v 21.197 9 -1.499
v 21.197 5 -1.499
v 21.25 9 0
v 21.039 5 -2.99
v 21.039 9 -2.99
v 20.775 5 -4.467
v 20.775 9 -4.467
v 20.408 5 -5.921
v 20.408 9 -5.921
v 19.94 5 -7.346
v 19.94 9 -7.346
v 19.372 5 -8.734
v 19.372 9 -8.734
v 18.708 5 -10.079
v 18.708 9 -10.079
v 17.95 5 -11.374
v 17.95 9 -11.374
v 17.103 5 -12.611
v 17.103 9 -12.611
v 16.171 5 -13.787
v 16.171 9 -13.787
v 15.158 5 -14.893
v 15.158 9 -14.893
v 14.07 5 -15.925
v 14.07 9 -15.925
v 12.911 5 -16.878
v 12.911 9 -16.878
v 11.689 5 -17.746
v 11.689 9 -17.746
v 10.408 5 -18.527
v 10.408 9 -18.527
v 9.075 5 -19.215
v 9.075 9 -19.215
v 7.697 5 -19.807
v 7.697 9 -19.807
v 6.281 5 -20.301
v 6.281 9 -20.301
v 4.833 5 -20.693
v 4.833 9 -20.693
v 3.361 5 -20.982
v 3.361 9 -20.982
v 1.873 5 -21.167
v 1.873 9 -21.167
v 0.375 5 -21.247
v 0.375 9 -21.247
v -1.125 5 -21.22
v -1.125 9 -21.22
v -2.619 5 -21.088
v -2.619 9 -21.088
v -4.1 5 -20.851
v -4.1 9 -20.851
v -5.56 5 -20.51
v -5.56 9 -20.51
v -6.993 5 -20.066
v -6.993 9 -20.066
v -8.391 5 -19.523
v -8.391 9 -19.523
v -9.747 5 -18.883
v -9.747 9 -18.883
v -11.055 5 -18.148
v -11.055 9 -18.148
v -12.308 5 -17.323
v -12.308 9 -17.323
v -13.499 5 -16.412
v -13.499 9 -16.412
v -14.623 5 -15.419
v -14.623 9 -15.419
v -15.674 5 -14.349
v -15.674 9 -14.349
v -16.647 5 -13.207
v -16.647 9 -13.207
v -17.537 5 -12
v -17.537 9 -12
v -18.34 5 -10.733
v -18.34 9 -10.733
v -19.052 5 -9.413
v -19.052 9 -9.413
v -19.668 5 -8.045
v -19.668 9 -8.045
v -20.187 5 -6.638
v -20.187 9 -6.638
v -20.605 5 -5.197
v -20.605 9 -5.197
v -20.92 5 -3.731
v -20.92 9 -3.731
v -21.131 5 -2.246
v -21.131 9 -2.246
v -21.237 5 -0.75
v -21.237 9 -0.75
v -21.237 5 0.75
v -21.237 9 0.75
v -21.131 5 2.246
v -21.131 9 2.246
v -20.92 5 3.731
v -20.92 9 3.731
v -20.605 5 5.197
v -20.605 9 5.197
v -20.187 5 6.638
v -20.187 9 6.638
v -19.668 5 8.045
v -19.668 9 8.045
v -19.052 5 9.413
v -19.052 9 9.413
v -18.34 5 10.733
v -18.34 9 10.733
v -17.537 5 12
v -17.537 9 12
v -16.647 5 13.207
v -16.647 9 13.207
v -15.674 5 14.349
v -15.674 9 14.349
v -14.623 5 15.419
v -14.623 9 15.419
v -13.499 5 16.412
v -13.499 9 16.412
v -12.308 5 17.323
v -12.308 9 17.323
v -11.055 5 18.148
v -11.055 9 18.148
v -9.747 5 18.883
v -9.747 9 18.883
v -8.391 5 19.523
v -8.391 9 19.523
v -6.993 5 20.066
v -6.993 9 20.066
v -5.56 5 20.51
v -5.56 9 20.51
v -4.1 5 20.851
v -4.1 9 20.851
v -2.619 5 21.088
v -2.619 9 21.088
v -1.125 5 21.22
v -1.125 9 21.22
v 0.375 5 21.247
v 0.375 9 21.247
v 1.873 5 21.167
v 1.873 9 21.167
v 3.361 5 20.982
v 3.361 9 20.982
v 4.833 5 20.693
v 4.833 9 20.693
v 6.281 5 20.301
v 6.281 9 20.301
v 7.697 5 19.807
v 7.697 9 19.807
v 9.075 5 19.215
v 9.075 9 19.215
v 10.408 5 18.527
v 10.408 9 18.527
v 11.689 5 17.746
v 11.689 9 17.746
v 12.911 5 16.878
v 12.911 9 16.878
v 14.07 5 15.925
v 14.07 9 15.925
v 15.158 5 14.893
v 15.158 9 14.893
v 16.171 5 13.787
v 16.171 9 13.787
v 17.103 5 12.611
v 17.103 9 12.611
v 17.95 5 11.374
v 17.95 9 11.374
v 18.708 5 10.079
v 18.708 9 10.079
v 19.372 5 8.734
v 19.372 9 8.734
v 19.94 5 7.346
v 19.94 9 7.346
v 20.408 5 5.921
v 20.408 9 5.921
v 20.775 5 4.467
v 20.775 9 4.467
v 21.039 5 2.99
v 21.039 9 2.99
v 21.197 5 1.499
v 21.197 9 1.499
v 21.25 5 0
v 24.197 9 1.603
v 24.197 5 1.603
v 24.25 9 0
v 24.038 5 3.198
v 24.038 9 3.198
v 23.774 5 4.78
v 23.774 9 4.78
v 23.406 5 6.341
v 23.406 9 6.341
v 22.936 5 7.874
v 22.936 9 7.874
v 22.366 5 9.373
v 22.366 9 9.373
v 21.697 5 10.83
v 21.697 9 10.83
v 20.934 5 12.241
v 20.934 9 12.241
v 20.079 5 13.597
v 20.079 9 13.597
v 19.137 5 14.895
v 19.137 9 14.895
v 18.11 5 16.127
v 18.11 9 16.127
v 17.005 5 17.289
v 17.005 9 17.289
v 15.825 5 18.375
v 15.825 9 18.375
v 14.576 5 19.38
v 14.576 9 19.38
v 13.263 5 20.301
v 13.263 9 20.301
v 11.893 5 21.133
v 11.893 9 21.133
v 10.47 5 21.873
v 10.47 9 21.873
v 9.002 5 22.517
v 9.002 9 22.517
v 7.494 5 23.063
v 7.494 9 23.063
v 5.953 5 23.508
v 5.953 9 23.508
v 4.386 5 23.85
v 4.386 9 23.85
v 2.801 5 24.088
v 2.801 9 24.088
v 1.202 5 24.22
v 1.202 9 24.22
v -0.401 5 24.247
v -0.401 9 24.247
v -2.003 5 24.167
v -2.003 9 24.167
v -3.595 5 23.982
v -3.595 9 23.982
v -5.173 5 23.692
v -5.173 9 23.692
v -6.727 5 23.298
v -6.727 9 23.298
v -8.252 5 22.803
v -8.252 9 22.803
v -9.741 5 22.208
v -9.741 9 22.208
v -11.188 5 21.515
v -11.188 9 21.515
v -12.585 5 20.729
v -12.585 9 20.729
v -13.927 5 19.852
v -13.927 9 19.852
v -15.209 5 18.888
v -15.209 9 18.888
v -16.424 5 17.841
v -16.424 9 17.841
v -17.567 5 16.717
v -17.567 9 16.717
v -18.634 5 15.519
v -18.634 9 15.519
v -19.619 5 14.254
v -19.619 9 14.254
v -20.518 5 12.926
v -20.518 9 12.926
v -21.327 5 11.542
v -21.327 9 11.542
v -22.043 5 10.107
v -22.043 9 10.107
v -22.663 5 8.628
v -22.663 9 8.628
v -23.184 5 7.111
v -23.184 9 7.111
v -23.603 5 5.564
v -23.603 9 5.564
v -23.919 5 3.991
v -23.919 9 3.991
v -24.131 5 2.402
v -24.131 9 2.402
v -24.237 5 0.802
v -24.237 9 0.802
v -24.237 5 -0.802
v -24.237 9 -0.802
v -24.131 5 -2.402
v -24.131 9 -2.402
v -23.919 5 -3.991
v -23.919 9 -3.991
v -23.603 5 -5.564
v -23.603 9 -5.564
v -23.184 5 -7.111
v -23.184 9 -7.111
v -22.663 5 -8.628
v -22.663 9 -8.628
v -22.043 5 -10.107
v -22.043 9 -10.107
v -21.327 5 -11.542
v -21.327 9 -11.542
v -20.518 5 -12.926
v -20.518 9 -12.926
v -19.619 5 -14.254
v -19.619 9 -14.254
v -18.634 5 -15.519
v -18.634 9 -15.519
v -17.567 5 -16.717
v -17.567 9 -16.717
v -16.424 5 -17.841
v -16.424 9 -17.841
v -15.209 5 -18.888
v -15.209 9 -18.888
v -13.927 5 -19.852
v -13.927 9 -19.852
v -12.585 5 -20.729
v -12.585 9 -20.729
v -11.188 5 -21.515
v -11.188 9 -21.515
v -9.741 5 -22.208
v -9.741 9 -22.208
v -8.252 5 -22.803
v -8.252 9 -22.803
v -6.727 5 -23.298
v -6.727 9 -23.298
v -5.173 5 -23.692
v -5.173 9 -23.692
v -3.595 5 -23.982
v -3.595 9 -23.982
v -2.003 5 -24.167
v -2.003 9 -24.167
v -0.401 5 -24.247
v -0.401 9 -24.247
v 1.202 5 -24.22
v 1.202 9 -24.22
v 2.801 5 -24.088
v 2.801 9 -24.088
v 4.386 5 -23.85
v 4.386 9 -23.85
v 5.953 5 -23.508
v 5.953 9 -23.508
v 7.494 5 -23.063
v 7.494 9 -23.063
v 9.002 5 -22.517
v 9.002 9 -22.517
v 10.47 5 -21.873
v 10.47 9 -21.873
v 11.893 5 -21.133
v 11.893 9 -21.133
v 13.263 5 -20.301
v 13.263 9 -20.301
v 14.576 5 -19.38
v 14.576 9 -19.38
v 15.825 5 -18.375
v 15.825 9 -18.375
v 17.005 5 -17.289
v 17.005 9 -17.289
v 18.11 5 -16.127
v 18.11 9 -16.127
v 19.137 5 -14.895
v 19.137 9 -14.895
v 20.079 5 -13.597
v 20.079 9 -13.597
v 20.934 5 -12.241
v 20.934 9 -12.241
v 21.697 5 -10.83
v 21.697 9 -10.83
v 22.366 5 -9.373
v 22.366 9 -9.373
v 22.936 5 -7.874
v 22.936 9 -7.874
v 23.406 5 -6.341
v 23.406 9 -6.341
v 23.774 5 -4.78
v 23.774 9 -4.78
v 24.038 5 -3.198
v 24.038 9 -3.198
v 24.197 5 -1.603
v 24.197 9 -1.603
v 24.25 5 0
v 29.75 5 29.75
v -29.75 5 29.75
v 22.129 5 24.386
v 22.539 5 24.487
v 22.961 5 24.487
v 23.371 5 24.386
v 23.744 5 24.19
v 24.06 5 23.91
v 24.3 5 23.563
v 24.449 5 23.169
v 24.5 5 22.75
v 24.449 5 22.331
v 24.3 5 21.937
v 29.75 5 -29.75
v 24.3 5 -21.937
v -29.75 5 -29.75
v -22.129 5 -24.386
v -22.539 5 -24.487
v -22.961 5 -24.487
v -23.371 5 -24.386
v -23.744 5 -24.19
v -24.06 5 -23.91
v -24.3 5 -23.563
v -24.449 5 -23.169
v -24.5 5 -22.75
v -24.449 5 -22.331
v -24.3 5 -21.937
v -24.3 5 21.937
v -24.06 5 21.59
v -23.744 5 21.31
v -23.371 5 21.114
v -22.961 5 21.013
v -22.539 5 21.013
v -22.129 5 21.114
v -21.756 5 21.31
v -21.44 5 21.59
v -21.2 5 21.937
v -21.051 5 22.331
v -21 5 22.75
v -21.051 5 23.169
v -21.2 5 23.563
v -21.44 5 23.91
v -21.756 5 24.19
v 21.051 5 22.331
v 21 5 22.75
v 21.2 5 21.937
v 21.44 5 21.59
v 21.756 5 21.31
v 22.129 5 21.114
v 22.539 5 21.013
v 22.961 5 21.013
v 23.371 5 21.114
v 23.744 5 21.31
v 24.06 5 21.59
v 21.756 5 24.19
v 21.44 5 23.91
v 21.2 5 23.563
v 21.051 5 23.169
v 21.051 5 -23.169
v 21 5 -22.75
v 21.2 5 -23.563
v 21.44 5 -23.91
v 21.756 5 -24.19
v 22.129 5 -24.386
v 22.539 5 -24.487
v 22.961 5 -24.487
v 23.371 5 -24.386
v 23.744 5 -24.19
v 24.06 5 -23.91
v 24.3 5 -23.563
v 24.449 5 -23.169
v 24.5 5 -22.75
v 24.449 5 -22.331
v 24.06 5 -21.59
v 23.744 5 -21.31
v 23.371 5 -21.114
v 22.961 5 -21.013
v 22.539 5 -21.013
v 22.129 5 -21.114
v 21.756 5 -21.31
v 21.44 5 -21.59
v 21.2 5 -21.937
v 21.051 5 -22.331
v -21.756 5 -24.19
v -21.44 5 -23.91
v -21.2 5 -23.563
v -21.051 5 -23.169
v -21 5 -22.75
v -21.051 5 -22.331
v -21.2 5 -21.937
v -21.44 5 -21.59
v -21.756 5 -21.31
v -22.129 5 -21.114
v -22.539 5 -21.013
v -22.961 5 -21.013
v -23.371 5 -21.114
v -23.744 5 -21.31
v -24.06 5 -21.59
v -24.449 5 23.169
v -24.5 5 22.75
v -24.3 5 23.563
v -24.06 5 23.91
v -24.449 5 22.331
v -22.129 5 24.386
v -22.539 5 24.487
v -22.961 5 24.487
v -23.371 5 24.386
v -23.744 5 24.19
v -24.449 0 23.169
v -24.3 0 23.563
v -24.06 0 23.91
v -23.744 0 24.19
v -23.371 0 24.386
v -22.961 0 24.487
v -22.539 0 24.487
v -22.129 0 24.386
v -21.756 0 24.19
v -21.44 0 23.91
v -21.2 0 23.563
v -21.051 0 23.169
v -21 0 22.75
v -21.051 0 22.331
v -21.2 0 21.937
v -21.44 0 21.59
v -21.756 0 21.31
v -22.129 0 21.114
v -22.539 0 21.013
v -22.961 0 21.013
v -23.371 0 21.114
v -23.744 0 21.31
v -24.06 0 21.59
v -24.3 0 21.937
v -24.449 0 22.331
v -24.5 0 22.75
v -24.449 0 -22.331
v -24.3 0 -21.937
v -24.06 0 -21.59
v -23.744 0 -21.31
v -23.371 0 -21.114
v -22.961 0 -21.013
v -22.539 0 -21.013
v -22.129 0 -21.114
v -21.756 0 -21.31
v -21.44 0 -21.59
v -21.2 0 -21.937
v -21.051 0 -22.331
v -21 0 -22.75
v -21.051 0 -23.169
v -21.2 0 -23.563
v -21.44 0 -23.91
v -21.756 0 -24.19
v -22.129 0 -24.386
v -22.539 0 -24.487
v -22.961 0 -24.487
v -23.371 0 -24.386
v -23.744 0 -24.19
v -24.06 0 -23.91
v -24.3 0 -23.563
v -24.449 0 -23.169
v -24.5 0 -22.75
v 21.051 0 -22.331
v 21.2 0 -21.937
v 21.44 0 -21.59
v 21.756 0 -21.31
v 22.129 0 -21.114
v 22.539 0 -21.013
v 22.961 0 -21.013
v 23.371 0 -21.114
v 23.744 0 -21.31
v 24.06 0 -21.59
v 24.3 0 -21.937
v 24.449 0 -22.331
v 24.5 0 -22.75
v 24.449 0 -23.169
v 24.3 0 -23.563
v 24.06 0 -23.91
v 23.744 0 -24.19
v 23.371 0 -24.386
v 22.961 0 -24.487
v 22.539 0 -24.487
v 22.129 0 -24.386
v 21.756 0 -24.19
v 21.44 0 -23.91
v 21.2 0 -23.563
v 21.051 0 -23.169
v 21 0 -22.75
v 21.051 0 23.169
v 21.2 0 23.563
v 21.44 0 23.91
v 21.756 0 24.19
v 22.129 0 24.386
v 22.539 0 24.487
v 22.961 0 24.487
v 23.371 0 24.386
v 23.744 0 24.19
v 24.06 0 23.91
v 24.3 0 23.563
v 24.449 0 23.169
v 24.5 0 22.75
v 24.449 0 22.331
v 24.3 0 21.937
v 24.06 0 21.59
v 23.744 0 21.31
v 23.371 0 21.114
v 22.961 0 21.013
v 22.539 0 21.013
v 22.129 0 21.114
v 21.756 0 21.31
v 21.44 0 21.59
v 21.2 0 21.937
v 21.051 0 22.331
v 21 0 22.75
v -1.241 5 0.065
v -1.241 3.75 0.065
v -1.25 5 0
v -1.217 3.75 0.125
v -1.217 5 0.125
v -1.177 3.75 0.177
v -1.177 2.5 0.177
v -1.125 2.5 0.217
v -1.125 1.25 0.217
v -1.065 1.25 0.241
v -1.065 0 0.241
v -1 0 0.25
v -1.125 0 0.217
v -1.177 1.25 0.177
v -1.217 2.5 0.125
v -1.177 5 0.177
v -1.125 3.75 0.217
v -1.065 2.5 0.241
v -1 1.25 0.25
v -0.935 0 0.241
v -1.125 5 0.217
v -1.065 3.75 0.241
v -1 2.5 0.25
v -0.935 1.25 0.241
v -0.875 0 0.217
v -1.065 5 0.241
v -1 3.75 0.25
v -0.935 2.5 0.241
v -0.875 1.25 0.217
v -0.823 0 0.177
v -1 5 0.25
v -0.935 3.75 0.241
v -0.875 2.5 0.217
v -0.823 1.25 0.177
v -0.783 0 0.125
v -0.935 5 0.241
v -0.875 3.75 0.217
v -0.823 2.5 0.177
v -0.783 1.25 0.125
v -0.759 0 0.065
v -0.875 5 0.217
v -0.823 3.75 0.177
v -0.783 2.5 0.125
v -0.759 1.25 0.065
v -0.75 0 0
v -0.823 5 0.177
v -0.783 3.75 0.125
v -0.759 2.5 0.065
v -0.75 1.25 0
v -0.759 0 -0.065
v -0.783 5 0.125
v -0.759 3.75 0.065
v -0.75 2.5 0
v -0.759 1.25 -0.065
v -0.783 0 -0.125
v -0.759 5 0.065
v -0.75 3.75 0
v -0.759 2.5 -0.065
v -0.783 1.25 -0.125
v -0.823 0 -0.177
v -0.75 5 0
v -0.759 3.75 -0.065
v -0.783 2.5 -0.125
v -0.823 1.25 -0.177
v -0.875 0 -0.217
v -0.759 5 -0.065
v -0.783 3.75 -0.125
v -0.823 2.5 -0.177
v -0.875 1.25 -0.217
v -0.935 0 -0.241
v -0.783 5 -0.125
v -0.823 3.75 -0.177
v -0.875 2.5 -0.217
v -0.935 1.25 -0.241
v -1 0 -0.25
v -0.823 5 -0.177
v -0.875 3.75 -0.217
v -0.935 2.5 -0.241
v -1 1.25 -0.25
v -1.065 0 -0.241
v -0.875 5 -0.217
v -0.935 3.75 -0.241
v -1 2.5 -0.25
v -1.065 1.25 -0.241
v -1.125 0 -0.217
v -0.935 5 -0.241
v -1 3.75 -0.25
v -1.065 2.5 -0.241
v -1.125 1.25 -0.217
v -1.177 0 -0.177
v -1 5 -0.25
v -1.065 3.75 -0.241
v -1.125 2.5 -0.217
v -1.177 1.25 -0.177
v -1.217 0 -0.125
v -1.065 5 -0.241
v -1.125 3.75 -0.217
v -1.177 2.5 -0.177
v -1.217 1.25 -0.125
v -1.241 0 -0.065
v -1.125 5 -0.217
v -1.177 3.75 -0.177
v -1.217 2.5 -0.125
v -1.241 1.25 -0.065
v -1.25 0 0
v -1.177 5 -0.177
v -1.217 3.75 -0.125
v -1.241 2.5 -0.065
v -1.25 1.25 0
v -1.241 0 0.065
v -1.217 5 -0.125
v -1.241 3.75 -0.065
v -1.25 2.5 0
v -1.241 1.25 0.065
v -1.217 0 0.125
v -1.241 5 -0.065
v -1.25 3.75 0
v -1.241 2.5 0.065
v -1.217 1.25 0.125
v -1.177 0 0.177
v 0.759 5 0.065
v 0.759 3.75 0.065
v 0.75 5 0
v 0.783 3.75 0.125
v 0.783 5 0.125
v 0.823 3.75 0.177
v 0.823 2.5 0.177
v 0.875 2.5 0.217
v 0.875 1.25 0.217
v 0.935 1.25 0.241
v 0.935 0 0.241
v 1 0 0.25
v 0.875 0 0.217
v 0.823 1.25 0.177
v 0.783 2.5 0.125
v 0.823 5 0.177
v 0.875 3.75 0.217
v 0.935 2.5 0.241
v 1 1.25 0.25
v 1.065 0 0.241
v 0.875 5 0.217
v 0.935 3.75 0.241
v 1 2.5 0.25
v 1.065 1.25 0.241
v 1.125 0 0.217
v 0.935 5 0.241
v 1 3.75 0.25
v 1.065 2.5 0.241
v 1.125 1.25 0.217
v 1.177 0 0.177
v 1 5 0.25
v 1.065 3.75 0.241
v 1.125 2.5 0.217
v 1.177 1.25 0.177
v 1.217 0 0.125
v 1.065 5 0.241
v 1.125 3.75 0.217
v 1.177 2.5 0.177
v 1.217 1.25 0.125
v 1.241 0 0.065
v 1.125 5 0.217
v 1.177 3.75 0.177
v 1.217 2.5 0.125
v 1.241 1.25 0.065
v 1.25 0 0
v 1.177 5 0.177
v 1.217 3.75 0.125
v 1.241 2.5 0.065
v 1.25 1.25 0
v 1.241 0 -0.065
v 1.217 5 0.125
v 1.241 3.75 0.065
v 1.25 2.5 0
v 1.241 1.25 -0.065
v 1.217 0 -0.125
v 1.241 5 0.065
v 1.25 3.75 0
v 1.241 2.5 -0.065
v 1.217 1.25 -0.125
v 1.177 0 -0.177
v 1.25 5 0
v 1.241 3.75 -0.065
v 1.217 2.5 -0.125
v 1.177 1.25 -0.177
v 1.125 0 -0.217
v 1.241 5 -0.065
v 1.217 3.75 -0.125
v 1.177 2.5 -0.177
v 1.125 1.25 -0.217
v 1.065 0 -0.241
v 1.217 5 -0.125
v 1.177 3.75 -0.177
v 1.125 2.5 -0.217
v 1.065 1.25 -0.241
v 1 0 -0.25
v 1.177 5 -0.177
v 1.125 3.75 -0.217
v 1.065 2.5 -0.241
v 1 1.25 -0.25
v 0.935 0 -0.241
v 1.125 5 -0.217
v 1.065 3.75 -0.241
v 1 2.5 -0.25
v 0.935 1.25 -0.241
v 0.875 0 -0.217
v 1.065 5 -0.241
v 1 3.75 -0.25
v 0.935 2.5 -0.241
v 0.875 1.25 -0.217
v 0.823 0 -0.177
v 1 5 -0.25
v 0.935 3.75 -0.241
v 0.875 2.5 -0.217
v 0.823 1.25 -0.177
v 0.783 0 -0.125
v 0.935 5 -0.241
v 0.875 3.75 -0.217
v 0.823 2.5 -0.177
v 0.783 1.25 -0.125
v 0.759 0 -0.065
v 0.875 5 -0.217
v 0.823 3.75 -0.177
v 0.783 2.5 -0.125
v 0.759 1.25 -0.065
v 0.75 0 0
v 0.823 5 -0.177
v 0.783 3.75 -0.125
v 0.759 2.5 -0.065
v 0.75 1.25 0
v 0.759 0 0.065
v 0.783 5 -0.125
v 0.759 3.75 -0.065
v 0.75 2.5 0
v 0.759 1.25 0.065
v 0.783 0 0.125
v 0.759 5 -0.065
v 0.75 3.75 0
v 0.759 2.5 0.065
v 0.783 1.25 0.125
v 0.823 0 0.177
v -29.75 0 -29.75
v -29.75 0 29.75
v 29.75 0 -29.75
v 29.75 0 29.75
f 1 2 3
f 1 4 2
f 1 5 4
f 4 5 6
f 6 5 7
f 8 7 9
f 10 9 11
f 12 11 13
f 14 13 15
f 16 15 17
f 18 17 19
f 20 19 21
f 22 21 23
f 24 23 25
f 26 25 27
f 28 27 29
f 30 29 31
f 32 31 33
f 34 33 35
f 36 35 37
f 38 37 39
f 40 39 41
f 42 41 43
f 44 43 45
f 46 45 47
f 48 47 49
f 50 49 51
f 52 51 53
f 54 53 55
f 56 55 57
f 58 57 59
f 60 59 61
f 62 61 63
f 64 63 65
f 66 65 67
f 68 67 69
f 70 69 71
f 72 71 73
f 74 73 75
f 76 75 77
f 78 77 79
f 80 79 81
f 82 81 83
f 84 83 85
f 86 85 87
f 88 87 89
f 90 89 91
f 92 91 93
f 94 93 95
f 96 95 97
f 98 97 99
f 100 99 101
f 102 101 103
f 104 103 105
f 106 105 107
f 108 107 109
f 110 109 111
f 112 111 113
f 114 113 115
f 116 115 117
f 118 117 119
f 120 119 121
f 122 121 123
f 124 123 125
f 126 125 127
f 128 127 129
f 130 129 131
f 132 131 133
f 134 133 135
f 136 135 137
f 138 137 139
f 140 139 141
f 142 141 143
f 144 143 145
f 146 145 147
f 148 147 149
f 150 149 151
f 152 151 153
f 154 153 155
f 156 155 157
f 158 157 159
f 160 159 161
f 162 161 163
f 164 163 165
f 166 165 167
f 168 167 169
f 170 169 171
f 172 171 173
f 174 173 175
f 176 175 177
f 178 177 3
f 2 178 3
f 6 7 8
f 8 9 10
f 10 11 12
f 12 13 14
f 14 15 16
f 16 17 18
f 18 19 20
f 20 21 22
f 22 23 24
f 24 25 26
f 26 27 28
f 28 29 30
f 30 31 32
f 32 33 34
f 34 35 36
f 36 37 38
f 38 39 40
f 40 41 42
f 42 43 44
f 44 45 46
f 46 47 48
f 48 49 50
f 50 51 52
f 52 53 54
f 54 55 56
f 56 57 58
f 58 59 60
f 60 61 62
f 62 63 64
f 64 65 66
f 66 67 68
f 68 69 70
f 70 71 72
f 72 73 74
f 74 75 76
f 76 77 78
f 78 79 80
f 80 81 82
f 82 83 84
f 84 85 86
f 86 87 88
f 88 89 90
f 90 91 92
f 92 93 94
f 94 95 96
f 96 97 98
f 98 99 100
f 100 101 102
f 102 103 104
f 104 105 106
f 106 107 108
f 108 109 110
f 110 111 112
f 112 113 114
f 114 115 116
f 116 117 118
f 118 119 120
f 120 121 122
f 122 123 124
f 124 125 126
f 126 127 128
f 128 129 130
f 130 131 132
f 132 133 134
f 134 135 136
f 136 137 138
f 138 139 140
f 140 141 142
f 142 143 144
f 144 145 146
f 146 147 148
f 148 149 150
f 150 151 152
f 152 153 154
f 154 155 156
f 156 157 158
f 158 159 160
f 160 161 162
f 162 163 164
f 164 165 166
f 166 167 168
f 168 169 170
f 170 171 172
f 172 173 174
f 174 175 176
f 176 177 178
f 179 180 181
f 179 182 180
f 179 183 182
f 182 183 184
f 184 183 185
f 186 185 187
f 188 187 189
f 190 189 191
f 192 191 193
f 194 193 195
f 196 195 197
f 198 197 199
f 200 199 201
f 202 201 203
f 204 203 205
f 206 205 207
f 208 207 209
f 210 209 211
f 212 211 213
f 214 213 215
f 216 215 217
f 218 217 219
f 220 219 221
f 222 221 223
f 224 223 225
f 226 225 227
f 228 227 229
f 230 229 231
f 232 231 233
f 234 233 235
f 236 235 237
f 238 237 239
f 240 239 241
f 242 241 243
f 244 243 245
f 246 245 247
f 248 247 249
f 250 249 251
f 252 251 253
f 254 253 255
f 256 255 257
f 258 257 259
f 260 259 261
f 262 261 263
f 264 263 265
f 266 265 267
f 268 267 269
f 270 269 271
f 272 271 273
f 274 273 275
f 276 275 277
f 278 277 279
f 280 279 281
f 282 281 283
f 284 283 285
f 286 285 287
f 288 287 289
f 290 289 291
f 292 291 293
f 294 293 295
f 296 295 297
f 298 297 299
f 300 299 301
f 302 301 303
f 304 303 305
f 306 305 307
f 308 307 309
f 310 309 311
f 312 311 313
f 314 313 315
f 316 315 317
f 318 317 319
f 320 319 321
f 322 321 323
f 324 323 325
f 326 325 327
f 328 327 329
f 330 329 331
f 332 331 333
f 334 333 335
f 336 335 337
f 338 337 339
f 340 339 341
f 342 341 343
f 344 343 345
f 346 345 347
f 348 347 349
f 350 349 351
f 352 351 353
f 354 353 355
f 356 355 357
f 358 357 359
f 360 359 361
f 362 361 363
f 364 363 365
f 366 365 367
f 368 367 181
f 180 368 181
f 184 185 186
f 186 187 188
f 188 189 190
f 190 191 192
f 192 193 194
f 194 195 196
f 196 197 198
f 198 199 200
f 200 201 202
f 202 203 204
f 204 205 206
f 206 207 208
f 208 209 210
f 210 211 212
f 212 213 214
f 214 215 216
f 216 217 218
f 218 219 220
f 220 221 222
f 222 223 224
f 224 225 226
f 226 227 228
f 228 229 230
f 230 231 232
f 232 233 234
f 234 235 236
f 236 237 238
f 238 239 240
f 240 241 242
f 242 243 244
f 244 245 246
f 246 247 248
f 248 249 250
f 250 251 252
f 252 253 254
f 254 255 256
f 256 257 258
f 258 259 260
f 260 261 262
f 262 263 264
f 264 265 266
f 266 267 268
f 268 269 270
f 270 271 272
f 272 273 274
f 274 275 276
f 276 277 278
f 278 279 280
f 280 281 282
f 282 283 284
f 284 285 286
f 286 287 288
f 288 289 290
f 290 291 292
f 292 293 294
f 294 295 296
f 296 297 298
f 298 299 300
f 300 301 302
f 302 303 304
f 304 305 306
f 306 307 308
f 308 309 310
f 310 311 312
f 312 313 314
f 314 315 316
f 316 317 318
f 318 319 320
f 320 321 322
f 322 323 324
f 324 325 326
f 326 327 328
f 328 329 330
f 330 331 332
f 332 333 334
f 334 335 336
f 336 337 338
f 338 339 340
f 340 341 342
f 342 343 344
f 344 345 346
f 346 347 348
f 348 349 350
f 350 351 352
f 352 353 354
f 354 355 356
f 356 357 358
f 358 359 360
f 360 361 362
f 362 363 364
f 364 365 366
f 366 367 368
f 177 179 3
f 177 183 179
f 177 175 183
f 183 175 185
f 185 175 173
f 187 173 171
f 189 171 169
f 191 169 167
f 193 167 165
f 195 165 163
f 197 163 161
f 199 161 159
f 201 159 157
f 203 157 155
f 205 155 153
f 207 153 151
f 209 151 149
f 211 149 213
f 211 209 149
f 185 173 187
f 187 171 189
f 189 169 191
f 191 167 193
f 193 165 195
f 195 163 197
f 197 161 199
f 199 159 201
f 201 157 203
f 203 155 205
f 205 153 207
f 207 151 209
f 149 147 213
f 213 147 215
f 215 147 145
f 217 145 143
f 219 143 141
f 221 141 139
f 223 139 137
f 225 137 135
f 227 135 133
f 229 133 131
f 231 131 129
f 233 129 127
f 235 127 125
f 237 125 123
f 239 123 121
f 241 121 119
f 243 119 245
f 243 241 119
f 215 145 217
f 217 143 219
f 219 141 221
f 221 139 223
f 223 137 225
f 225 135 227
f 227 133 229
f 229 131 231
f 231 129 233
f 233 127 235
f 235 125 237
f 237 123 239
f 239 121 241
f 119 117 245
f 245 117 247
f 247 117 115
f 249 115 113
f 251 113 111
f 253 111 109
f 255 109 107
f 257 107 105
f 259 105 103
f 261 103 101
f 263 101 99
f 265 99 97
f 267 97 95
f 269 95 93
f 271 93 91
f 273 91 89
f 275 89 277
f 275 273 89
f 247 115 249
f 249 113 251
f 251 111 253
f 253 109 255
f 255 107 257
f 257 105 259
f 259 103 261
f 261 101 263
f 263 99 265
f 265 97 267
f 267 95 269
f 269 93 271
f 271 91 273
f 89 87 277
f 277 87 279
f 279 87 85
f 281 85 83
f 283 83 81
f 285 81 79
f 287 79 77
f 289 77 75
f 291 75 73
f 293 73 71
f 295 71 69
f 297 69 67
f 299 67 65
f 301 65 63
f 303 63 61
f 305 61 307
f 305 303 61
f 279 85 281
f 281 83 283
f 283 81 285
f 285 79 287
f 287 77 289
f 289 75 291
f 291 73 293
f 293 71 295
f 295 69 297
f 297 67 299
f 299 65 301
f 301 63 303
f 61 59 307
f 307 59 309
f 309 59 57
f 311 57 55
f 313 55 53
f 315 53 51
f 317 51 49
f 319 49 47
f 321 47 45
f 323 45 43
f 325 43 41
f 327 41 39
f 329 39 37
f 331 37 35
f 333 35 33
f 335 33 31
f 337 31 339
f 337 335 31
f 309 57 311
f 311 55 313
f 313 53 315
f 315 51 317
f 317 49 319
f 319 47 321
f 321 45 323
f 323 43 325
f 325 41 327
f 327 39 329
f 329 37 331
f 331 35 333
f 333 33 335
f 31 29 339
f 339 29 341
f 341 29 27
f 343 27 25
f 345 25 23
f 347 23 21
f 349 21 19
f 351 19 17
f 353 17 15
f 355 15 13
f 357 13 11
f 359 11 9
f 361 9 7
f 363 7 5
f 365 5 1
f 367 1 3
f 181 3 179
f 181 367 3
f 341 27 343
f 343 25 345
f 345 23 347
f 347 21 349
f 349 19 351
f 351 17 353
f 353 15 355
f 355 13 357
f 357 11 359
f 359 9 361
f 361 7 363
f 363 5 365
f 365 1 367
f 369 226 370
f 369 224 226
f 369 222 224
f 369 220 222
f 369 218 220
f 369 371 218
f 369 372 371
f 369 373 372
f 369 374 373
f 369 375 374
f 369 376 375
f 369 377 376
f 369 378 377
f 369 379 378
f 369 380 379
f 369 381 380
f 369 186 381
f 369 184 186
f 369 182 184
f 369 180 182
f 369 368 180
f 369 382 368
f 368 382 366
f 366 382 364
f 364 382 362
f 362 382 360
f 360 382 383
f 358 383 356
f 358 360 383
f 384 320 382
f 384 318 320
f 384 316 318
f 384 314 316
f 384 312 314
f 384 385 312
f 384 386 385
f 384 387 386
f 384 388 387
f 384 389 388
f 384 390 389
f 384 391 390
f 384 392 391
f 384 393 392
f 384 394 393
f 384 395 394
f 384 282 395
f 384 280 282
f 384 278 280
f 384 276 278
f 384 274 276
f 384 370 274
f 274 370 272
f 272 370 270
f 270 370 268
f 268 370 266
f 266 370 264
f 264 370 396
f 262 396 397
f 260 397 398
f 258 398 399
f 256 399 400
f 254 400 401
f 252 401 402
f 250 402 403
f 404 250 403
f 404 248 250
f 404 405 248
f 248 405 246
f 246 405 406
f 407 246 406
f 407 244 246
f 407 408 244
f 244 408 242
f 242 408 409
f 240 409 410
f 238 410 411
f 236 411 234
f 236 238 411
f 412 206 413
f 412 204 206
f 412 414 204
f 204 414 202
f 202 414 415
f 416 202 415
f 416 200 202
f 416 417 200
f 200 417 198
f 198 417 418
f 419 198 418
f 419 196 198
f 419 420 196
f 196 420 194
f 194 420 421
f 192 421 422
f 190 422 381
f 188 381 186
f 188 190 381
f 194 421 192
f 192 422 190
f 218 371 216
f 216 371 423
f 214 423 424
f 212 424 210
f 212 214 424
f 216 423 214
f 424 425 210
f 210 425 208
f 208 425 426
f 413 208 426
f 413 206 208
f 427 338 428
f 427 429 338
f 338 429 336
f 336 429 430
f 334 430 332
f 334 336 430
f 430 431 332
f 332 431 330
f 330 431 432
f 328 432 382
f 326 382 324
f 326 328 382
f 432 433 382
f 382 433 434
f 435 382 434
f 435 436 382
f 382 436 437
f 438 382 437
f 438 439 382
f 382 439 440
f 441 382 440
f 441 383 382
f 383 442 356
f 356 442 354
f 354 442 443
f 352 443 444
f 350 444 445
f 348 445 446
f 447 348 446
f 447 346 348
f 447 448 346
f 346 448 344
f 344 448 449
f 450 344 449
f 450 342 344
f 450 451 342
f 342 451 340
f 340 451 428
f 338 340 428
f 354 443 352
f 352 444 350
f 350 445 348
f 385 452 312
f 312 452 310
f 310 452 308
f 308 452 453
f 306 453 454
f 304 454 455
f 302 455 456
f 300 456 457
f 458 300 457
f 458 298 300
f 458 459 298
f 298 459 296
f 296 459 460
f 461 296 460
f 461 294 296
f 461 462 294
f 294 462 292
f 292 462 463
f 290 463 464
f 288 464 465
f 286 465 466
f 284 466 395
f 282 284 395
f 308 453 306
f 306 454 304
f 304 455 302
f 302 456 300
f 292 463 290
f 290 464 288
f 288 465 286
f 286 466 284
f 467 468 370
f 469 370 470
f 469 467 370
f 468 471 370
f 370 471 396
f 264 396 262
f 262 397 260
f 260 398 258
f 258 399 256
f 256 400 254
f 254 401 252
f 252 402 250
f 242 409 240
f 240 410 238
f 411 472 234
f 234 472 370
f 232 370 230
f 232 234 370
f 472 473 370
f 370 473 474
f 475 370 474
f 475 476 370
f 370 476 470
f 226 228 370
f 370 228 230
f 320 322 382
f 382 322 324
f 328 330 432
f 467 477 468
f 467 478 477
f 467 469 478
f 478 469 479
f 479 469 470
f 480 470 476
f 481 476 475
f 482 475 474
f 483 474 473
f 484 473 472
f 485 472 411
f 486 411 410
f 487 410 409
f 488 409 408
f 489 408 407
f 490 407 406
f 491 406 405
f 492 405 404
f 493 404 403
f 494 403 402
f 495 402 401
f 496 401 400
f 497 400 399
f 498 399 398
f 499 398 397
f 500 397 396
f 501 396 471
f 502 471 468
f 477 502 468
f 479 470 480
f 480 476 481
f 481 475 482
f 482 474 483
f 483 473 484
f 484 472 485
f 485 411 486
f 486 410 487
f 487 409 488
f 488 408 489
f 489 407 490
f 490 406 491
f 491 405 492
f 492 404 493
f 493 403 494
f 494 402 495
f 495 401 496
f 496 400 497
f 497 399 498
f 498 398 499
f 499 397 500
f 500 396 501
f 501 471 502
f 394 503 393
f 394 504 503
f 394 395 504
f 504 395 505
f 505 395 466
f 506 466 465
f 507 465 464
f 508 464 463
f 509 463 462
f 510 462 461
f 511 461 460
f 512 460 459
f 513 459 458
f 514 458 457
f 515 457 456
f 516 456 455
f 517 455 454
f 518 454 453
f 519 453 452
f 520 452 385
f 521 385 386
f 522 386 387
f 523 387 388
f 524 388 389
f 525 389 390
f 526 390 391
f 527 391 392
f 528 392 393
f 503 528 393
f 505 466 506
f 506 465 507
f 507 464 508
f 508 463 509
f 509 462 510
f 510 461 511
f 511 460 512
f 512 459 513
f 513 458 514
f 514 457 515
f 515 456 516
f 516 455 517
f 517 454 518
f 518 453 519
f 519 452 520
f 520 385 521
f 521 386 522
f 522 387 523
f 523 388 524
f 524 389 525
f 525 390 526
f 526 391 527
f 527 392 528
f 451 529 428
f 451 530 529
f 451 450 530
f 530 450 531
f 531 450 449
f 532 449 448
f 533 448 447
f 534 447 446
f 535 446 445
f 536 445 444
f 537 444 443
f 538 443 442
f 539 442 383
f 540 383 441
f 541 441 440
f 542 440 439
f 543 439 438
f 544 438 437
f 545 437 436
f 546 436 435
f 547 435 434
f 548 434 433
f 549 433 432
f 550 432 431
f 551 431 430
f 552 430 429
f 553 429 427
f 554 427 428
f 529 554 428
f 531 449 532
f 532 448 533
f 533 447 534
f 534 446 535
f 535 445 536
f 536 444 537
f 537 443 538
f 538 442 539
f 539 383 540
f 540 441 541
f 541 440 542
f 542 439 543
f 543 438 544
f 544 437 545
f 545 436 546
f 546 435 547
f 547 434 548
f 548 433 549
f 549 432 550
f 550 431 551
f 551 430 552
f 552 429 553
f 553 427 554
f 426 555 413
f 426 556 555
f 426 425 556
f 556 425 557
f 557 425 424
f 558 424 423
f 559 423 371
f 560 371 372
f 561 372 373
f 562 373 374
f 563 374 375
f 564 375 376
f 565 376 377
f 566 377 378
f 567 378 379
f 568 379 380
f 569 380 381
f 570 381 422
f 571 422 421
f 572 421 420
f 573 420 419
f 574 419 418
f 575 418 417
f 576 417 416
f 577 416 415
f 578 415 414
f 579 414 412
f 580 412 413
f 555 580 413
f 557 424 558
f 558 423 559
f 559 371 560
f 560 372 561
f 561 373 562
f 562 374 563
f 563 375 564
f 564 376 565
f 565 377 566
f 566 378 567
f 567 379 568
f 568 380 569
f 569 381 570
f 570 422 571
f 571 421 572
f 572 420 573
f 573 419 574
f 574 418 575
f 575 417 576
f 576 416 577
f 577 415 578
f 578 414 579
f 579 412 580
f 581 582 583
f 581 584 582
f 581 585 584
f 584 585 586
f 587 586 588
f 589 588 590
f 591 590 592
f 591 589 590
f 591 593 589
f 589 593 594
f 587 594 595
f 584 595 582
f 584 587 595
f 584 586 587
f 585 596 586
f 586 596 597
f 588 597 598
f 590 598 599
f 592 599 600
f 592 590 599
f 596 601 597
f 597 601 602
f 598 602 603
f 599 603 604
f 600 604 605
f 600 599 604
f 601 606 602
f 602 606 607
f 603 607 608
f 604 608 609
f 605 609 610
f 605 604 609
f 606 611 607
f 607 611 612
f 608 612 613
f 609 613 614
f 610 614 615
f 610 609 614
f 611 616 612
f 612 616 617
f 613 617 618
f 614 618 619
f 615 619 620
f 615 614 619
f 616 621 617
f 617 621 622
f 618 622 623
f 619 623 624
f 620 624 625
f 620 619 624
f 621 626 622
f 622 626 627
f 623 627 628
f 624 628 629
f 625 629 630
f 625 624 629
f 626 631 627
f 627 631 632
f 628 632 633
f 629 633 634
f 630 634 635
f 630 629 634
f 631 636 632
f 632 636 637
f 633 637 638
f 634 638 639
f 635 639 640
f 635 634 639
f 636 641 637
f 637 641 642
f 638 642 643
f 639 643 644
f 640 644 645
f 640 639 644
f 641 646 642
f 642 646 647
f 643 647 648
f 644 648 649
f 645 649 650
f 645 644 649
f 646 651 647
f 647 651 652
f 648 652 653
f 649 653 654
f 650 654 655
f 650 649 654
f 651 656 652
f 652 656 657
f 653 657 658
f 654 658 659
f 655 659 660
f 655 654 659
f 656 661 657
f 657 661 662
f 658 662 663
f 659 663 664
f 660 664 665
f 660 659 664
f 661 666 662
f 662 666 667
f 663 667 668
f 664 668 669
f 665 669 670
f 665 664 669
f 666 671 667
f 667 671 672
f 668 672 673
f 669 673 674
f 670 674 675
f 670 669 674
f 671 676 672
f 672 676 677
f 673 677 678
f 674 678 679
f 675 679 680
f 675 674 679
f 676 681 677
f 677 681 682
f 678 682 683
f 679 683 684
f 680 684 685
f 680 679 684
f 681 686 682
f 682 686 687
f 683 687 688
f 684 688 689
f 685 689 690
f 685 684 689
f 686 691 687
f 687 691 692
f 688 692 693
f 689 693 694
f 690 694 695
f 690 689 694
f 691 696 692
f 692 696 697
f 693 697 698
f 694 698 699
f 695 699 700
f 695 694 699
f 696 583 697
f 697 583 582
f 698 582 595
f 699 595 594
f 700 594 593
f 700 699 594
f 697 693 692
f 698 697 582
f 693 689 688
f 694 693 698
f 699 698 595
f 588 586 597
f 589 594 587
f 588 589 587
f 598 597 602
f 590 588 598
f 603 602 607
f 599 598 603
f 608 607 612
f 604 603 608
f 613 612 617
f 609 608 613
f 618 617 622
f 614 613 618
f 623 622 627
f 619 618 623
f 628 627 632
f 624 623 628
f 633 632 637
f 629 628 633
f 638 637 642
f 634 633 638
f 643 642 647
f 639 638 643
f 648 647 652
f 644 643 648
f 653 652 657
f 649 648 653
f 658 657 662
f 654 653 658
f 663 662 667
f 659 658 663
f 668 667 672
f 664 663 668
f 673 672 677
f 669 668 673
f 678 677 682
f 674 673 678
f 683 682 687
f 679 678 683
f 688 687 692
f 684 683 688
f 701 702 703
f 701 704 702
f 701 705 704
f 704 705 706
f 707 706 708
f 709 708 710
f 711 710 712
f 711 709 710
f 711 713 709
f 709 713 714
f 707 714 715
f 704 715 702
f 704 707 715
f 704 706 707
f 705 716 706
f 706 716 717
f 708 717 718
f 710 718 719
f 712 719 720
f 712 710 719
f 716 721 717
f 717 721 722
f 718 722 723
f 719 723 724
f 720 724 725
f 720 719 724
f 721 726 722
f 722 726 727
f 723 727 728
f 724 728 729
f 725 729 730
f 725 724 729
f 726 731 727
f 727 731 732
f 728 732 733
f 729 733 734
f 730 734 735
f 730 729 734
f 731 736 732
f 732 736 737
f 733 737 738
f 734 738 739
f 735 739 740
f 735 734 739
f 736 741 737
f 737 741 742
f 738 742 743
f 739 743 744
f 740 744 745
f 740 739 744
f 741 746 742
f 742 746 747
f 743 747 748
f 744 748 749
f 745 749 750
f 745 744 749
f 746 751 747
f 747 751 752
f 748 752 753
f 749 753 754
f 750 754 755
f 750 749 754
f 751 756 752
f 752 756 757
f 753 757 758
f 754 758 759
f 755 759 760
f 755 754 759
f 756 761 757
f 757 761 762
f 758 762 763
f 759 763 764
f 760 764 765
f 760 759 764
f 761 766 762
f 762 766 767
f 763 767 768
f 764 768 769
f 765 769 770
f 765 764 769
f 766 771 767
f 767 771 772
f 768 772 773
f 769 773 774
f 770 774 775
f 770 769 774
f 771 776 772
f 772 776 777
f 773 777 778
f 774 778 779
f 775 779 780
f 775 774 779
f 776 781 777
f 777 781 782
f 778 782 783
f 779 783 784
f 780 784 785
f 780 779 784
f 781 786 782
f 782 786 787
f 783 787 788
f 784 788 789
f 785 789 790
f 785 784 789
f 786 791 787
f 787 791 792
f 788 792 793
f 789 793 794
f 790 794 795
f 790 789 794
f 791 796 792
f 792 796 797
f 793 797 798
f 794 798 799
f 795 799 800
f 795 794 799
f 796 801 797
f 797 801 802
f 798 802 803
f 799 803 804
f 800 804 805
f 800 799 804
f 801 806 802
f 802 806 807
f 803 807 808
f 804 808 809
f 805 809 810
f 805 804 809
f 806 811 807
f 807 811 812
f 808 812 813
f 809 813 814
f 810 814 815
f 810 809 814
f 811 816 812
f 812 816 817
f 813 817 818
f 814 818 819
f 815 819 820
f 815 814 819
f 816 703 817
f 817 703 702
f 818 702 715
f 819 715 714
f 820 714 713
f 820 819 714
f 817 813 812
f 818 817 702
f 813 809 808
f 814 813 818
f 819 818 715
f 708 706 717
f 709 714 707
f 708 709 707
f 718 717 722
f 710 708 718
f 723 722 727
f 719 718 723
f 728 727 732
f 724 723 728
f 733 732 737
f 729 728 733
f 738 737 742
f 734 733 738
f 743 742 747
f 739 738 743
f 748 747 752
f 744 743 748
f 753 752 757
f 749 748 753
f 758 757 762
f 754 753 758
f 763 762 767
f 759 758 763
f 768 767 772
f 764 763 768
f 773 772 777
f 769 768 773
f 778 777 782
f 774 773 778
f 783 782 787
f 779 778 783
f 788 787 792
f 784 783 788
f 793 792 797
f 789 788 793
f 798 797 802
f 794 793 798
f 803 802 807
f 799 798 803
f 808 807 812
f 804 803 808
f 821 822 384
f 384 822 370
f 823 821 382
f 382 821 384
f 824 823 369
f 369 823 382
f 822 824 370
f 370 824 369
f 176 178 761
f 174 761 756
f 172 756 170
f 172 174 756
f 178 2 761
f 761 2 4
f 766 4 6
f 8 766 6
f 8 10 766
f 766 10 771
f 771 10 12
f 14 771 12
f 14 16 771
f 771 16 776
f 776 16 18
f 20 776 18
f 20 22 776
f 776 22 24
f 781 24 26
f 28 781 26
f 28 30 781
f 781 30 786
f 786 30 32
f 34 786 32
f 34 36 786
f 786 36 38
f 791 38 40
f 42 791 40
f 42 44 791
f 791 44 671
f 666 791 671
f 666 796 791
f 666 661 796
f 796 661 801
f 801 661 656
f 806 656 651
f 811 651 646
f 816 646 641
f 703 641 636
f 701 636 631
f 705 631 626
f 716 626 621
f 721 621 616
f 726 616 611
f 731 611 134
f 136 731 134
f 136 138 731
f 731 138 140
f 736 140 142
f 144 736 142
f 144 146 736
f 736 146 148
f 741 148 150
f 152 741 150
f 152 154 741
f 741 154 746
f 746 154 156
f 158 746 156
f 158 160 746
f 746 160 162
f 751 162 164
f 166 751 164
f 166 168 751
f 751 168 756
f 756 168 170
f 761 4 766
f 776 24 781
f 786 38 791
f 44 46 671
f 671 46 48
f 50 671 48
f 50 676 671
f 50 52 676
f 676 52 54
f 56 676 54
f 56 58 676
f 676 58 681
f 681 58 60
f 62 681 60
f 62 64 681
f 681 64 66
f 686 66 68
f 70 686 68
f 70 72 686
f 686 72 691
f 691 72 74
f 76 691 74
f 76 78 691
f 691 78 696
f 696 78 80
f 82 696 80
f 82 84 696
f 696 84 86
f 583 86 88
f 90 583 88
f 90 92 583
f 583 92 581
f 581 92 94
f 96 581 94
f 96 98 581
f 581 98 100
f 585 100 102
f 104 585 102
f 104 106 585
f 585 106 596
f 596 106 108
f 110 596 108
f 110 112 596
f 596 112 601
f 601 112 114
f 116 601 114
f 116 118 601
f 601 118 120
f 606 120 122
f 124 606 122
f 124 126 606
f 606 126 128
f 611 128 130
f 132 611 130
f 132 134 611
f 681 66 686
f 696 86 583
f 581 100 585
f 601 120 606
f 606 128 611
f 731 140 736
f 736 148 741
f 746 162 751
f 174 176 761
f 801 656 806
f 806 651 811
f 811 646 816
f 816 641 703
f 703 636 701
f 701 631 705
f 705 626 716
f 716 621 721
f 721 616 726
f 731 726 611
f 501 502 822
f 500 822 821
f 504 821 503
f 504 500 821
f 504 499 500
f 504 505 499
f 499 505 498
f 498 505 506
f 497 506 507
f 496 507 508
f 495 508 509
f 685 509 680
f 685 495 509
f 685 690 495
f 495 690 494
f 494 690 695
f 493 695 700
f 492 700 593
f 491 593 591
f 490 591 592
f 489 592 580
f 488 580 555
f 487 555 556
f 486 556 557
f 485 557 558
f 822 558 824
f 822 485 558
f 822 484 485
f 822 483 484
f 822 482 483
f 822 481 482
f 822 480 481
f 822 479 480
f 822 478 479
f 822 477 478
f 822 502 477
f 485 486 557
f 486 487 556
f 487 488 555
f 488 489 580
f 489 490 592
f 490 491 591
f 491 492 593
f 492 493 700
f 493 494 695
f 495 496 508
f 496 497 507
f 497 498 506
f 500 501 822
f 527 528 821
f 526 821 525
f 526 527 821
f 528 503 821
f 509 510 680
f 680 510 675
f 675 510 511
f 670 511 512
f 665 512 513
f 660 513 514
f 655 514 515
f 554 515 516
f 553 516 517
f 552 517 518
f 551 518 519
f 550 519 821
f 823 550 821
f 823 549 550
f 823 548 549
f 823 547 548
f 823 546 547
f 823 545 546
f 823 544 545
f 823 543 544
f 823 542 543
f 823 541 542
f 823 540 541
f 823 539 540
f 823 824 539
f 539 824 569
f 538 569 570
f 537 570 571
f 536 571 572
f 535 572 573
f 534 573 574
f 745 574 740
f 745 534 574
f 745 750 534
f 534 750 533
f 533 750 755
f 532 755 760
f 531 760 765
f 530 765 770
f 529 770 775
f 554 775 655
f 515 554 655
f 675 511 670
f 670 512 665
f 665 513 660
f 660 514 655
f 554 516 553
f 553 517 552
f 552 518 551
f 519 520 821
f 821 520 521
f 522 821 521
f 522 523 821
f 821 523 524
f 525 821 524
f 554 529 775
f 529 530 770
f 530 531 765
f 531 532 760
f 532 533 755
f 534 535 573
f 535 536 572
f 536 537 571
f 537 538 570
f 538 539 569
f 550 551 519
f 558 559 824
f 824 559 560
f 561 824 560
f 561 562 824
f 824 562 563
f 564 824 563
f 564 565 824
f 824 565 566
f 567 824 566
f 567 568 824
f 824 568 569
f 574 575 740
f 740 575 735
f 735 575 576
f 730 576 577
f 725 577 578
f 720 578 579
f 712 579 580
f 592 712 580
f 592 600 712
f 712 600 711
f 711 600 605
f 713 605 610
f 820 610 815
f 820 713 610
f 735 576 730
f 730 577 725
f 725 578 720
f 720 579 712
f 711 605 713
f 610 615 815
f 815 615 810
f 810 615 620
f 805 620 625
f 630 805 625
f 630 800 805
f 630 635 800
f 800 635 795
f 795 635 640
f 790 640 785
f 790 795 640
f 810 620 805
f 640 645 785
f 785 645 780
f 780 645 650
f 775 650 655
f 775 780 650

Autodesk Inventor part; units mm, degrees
ref_plane "YZ Plane" through (0, 0, 0) normal (1, 0, 0) x (0, 1, 0)
ref_plane "XZ Plane" through (0, 0, 0) normal (0, 1, 0) x (-1, 0, 0)
ref_plane "XY Plane" through (0, 0, 0) normal (0, 0, 1) x (1, 0, 0)
sketch "Sketch1" plane through (0, 0, 0) normal (0, 1, 0) x (-1, 0, 0)
  line L0 (29.75, 29.75) -> (-29.75, 29.75)
  line L1 (-29.75, 29.75) -> (-29.75, -29.75)
  line L2 (-29.75, -29.75) -> (29.75, -29.75)
  line L3 (29.75, -29.75) -> (29.75, 29.75)
  line L4 (29.75, 0) -> (-29.75, 0) construction
  line L5 (0, -29.75) -> (0, 29.75) construction
  circle A0 centre (-22.75, 22.75) radius 1.75
  circle A1 centre (-22.75, -22.75) radius 1.75
  circle A2 centre (22.75, -22.75) radius 1.75
  circle A3 centre (22.75, 22.75) radius 1.75
  circle A4 centre (-1, 0) radius 0.25
  circle A5 centre (1, 0) radius 0.25
  point P0 (0, 0)
  dimension "d0" = 59.5
  dimension "d3" = 3.5
  dimension "d4" = 7
  dimension "d5" = 7
  dimension "d10" = 1
  dimension "d11" = 0.5
extrude "Extrusion1" add sketch "Sketch1" along normal blind 5
sketch "Sketch3" plane through (0, 5, 0) normal (0, 1, 0) x (1, 0, 0)
  circle A0 centre (0, 0) radius 24.25
  circle A1 centre (0, 0) radius 21.25
  line L0 (29.75, 29.75) -> (-29.75, 29.75) projected
  dimension "d7" = 3
  dimension "d12" = 5.5
extrude "Extrusion2" add sketch "Sketch3" along normal blind 4
properties part number "Power_Meter_Adapter_Part2"
